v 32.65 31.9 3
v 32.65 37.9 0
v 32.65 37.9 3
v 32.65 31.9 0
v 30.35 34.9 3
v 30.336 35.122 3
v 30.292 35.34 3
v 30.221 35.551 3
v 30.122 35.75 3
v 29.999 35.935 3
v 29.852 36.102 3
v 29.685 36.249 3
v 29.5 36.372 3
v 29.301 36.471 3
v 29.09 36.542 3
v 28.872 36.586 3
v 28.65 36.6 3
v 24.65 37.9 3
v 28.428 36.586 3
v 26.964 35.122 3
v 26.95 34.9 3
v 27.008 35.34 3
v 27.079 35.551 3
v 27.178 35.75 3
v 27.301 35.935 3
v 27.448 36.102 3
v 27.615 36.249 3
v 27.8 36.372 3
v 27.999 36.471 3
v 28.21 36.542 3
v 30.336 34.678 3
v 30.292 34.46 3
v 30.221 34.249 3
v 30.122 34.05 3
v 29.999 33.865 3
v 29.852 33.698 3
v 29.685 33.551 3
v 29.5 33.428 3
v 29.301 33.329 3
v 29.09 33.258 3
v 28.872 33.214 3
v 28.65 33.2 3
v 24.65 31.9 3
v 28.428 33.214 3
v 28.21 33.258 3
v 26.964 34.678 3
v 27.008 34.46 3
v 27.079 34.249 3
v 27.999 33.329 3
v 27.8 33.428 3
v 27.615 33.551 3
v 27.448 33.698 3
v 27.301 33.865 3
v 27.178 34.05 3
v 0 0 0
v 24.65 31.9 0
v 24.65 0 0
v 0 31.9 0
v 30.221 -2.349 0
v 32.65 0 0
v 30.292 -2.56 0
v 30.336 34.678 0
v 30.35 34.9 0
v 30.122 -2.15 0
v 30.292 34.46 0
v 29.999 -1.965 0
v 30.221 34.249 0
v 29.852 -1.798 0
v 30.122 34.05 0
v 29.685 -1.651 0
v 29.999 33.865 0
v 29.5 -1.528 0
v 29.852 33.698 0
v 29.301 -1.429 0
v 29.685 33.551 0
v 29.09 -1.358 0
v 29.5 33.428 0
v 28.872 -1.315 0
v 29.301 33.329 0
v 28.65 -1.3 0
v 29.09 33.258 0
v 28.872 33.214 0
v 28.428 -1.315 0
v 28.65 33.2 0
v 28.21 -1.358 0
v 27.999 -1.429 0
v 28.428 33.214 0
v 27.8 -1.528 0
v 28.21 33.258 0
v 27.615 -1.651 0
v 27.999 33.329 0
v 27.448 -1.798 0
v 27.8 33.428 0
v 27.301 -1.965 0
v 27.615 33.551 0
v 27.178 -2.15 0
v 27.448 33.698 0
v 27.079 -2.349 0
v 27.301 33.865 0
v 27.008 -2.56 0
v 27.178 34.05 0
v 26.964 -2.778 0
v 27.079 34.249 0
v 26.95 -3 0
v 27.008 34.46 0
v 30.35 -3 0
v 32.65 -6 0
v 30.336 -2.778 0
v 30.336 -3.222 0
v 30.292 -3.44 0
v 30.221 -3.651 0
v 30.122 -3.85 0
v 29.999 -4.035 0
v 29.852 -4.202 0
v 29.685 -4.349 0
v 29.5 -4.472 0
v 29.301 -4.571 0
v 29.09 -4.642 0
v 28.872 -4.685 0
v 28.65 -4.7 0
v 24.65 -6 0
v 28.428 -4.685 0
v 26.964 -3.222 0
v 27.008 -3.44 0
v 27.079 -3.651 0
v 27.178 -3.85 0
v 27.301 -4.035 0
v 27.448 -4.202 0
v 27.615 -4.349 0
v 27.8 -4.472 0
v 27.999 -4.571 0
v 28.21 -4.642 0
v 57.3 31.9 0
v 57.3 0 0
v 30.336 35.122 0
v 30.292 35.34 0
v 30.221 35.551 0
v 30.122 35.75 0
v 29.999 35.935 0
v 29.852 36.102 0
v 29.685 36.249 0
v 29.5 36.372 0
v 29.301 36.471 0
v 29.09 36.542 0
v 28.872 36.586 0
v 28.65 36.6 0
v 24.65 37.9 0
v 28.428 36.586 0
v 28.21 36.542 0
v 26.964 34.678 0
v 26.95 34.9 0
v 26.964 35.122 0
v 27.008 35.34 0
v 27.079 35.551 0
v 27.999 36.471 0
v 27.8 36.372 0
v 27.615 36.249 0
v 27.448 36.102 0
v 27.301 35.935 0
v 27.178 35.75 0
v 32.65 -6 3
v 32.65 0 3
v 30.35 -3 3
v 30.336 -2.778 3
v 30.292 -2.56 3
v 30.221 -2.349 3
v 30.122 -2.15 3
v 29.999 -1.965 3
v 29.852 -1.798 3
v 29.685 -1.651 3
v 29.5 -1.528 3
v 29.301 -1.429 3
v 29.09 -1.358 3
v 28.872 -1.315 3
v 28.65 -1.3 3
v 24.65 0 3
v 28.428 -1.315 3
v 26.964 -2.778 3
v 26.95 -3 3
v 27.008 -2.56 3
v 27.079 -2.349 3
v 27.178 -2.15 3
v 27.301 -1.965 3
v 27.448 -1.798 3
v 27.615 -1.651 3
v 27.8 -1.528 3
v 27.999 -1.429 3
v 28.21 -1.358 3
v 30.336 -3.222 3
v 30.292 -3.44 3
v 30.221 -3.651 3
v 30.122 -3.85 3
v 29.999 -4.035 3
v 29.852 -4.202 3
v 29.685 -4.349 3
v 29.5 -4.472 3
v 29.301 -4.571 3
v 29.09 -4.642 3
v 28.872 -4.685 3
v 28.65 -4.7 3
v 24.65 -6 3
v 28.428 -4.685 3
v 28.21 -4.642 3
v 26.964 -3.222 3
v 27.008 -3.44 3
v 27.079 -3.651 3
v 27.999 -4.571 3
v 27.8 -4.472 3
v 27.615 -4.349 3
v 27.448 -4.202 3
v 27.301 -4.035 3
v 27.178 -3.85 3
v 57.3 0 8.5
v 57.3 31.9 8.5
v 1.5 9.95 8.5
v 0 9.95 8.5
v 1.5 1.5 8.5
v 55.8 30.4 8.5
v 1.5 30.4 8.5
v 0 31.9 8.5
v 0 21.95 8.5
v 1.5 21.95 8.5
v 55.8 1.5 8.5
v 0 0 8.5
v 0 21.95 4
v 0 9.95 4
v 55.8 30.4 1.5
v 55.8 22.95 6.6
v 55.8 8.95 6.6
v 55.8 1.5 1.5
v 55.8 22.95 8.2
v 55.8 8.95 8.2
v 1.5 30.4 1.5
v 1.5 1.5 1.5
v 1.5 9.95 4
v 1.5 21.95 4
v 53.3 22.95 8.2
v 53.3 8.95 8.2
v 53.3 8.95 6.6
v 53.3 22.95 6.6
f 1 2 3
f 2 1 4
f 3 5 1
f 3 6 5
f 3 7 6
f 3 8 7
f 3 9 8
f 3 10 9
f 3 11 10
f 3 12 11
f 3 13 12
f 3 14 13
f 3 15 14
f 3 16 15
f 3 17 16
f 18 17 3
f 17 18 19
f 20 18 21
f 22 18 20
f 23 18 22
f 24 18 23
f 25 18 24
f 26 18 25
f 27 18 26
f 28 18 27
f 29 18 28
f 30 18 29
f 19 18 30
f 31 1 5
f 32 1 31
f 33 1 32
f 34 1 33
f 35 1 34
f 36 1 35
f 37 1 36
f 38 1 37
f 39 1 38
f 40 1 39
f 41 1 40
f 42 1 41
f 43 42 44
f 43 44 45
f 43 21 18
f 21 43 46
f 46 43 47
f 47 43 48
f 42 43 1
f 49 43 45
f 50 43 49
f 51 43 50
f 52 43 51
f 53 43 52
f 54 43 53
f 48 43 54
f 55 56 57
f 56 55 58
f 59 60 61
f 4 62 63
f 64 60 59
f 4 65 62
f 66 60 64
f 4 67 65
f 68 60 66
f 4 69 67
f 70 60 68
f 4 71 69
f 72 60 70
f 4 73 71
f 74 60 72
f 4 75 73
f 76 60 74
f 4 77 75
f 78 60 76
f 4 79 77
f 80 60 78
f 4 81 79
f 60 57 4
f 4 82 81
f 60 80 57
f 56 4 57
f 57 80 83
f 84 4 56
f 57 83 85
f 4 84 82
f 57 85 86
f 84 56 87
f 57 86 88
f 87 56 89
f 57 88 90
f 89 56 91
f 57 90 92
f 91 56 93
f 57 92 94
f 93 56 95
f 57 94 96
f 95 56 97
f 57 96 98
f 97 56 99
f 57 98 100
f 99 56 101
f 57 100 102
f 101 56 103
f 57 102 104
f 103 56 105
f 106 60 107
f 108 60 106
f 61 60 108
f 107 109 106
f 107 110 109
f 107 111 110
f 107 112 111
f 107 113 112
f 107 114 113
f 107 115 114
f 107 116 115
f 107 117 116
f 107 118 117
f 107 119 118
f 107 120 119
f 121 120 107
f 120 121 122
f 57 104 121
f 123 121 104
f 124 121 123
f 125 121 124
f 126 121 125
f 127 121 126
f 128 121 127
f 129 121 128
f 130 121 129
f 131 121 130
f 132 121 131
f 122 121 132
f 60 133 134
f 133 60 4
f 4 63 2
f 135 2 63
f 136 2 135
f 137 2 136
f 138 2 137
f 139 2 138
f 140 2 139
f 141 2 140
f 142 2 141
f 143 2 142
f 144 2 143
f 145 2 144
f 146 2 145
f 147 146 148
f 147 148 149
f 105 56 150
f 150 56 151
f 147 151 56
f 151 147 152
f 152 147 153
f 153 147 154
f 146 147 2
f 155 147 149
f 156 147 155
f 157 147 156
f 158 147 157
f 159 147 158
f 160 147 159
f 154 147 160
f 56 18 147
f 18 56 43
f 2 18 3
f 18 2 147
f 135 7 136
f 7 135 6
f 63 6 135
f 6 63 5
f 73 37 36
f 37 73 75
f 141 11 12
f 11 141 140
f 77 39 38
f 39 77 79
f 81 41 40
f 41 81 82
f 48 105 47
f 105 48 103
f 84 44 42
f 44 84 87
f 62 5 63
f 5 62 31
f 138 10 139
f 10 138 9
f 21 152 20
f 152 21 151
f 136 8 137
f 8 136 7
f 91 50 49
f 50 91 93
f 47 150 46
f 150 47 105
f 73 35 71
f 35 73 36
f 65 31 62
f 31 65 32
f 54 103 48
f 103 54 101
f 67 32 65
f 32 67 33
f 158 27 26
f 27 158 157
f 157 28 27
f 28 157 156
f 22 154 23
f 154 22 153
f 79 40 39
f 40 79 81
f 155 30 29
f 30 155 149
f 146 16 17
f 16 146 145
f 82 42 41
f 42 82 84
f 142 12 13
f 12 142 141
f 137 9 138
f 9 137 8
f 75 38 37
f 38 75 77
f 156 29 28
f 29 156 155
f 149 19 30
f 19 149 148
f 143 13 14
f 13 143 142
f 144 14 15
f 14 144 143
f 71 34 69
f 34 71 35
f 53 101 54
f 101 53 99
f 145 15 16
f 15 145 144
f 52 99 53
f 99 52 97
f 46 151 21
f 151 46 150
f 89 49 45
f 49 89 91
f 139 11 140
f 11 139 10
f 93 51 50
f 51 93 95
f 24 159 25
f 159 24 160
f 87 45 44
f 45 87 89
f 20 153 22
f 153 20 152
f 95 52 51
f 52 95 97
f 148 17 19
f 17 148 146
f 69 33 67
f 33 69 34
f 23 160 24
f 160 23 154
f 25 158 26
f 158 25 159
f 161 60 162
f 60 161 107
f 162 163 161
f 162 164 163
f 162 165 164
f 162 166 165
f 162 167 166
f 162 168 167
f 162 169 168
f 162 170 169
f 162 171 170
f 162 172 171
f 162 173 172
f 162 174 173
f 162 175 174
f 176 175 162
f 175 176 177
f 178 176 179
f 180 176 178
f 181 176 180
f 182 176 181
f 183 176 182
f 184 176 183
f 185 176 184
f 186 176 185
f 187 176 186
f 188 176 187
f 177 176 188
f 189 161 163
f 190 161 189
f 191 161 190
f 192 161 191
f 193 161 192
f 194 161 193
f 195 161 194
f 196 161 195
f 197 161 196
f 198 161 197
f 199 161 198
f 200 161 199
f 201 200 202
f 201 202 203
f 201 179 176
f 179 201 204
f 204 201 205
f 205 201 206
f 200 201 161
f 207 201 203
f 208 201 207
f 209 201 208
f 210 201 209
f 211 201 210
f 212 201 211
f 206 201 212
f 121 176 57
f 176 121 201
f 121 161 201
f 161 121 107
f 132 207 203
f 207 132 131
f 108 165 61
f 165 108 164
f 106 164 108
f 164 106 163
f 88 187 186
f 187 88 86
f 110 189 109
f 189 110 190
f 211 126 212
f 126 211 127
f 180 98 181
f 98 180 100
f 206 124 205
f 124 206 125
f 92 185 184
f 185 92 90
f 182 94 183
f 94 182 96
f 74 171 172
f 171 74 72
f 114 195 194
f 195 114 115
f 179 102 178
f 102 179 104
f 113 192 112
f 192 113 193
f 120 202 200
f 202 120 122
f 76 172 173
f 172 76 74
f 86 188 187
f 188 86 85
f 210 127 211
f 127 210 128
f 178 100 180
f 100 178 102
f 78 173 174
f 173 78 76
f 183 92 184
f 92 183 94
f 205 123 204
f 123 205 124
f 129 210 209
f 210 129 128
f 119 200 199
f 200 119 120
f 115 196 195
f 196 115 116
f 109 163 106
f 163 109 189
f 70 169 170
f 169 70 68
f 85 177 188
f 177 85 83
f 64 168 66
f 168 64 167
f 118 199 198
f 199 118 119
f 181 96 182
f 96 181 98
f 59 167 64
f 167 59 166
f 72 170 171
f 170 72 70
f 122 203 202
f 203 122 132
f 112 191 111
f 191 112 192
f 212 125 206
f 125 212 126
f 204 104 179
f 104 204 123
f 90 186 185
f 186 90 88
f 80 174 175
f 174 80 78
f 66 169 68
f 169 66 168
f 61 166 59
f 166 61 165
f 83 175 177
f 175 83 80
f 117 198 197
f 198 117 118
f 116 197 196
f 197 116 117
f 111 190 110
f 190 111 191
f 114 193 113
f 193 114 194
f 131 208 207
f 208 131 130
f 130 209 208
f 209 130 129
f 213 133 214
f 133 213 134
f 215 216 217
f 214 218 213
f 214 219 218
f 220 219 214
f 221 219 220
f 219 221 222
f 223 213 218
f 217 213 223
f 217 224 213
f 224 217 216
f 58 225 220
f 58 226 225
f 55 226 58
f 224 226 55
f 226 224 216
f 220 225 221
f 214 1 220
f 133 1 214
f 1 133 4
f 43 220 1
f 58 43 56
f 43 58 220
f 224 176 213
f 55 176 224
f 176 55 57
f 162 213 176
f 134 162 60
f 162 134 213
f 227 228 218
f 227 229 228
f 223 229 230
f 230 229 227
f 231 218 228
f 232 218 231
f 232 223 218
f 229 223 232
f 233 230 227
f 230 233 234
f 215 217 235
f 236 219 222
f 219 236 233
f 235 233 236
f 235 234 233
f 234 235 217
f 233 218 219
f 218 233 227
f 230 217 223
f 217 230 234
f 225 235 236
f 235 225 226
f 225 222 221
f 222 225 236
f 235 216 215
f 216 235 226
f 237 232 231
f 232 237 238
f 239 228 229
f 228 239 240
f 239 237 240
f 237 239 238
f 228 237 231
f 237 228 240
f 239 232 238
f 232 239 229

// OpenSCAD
// ESP32 DevKit tray (CP2102, 38-pin class), 2026-10-29. Open top so the Dupont wires on the headers leave upward; USB end notched; two M3 tabs on the long sides.
// The board rests on its own pin tips on the flat floor (no standoffs: the pin rows sit right at the long edges). All sizes are parameters: measure YOUR board and adjust.
$fn = 48;

board_l = 51.5;   // board length (same as cad/modelo_robo/robot_completo.scad)
board_w = 28.6;   // board width
board_t = 1.6;
pin_tip = 3.0;    // pin tips below the PCB (board stands on them)
header_h = 2.5;   // plastic header above the PCB
clr = 0.15;        // clearance per side
wall = 1.5;
floor_t = 1.5;

usb_w = 12.0;     // notch width at the USB end (x = 0)
tab_len = 8.0;   // tab size along the box length
tab_out = 6.0;    // how far the tab sticks out of the wall
tab_t = 3.0;
screw_d = 3.4;    // M3 clearance

// Hold-down lip on the end opposite the USB, centered: it overhangs the bare PCB end (the antenna keep-out has no parts there).
// Fit: lay the board level with its far edge `slide` short of the wall, then push it `slide` toward the far wall so the lip covers the PCB end.
lip_w = 14.0;     // lip width
lip_over = 2.5;   // overhang over the board end
lip_t = 1.6;      // lip thickness
lip_gap = 0.5;    // air between the PCB top and the lip
slide = 2.5;      // extra cavity length (>= lip_over) to get the board under the lip

cav_l = board_l + 2 * clr + slide;
cav_w = board_w + 2 * clr;
out_l = cav_l + 2 * wall;
out_w = cav_w + 2 * wall;
H = floor_t + pin_tip + board_t + header_h - 0.1;   // walls end just under the header tops

module tab(side) {   // side = +1 (y = out_w) or -1 (y = 0)
  y0 = side > 0 ? out_w - wall : -tab_out;
  difference() {
    translate([out_l / 2 - tab_len / 2, y0, 0]) cube([tab_len, tab_out + wall, tab_t]);
    translate([out_l / 2, side > 0 ? out_w + tab_out / 2 : -tab_out / 2, -1]) cylinder(d = screw_d, h = tab_t + 2);
  }
}

union() {
difference() {
  union() {
    cube([out_l, out_w, H]);
    tab(1);
    tab(-1);
  }
  translate([wall, wall, floor_t]) cube([cav_l, cav_w, H]);                                   // cavity
  translate([-1, out_w / 2 - usb_w / 2, floor_t + pin_tip - 0.5]) cube([wall + 2, usb_w, H]);   // USB notch, open to the top
}
translate([out_l - wall - lip_over, out_w / 2 - lip_w / 2, floor_t + pin_tip + board_t + lip_gap]) cube([lip_over + wall / 2, lip_w, lip_t]);   // hold-down lip
}
